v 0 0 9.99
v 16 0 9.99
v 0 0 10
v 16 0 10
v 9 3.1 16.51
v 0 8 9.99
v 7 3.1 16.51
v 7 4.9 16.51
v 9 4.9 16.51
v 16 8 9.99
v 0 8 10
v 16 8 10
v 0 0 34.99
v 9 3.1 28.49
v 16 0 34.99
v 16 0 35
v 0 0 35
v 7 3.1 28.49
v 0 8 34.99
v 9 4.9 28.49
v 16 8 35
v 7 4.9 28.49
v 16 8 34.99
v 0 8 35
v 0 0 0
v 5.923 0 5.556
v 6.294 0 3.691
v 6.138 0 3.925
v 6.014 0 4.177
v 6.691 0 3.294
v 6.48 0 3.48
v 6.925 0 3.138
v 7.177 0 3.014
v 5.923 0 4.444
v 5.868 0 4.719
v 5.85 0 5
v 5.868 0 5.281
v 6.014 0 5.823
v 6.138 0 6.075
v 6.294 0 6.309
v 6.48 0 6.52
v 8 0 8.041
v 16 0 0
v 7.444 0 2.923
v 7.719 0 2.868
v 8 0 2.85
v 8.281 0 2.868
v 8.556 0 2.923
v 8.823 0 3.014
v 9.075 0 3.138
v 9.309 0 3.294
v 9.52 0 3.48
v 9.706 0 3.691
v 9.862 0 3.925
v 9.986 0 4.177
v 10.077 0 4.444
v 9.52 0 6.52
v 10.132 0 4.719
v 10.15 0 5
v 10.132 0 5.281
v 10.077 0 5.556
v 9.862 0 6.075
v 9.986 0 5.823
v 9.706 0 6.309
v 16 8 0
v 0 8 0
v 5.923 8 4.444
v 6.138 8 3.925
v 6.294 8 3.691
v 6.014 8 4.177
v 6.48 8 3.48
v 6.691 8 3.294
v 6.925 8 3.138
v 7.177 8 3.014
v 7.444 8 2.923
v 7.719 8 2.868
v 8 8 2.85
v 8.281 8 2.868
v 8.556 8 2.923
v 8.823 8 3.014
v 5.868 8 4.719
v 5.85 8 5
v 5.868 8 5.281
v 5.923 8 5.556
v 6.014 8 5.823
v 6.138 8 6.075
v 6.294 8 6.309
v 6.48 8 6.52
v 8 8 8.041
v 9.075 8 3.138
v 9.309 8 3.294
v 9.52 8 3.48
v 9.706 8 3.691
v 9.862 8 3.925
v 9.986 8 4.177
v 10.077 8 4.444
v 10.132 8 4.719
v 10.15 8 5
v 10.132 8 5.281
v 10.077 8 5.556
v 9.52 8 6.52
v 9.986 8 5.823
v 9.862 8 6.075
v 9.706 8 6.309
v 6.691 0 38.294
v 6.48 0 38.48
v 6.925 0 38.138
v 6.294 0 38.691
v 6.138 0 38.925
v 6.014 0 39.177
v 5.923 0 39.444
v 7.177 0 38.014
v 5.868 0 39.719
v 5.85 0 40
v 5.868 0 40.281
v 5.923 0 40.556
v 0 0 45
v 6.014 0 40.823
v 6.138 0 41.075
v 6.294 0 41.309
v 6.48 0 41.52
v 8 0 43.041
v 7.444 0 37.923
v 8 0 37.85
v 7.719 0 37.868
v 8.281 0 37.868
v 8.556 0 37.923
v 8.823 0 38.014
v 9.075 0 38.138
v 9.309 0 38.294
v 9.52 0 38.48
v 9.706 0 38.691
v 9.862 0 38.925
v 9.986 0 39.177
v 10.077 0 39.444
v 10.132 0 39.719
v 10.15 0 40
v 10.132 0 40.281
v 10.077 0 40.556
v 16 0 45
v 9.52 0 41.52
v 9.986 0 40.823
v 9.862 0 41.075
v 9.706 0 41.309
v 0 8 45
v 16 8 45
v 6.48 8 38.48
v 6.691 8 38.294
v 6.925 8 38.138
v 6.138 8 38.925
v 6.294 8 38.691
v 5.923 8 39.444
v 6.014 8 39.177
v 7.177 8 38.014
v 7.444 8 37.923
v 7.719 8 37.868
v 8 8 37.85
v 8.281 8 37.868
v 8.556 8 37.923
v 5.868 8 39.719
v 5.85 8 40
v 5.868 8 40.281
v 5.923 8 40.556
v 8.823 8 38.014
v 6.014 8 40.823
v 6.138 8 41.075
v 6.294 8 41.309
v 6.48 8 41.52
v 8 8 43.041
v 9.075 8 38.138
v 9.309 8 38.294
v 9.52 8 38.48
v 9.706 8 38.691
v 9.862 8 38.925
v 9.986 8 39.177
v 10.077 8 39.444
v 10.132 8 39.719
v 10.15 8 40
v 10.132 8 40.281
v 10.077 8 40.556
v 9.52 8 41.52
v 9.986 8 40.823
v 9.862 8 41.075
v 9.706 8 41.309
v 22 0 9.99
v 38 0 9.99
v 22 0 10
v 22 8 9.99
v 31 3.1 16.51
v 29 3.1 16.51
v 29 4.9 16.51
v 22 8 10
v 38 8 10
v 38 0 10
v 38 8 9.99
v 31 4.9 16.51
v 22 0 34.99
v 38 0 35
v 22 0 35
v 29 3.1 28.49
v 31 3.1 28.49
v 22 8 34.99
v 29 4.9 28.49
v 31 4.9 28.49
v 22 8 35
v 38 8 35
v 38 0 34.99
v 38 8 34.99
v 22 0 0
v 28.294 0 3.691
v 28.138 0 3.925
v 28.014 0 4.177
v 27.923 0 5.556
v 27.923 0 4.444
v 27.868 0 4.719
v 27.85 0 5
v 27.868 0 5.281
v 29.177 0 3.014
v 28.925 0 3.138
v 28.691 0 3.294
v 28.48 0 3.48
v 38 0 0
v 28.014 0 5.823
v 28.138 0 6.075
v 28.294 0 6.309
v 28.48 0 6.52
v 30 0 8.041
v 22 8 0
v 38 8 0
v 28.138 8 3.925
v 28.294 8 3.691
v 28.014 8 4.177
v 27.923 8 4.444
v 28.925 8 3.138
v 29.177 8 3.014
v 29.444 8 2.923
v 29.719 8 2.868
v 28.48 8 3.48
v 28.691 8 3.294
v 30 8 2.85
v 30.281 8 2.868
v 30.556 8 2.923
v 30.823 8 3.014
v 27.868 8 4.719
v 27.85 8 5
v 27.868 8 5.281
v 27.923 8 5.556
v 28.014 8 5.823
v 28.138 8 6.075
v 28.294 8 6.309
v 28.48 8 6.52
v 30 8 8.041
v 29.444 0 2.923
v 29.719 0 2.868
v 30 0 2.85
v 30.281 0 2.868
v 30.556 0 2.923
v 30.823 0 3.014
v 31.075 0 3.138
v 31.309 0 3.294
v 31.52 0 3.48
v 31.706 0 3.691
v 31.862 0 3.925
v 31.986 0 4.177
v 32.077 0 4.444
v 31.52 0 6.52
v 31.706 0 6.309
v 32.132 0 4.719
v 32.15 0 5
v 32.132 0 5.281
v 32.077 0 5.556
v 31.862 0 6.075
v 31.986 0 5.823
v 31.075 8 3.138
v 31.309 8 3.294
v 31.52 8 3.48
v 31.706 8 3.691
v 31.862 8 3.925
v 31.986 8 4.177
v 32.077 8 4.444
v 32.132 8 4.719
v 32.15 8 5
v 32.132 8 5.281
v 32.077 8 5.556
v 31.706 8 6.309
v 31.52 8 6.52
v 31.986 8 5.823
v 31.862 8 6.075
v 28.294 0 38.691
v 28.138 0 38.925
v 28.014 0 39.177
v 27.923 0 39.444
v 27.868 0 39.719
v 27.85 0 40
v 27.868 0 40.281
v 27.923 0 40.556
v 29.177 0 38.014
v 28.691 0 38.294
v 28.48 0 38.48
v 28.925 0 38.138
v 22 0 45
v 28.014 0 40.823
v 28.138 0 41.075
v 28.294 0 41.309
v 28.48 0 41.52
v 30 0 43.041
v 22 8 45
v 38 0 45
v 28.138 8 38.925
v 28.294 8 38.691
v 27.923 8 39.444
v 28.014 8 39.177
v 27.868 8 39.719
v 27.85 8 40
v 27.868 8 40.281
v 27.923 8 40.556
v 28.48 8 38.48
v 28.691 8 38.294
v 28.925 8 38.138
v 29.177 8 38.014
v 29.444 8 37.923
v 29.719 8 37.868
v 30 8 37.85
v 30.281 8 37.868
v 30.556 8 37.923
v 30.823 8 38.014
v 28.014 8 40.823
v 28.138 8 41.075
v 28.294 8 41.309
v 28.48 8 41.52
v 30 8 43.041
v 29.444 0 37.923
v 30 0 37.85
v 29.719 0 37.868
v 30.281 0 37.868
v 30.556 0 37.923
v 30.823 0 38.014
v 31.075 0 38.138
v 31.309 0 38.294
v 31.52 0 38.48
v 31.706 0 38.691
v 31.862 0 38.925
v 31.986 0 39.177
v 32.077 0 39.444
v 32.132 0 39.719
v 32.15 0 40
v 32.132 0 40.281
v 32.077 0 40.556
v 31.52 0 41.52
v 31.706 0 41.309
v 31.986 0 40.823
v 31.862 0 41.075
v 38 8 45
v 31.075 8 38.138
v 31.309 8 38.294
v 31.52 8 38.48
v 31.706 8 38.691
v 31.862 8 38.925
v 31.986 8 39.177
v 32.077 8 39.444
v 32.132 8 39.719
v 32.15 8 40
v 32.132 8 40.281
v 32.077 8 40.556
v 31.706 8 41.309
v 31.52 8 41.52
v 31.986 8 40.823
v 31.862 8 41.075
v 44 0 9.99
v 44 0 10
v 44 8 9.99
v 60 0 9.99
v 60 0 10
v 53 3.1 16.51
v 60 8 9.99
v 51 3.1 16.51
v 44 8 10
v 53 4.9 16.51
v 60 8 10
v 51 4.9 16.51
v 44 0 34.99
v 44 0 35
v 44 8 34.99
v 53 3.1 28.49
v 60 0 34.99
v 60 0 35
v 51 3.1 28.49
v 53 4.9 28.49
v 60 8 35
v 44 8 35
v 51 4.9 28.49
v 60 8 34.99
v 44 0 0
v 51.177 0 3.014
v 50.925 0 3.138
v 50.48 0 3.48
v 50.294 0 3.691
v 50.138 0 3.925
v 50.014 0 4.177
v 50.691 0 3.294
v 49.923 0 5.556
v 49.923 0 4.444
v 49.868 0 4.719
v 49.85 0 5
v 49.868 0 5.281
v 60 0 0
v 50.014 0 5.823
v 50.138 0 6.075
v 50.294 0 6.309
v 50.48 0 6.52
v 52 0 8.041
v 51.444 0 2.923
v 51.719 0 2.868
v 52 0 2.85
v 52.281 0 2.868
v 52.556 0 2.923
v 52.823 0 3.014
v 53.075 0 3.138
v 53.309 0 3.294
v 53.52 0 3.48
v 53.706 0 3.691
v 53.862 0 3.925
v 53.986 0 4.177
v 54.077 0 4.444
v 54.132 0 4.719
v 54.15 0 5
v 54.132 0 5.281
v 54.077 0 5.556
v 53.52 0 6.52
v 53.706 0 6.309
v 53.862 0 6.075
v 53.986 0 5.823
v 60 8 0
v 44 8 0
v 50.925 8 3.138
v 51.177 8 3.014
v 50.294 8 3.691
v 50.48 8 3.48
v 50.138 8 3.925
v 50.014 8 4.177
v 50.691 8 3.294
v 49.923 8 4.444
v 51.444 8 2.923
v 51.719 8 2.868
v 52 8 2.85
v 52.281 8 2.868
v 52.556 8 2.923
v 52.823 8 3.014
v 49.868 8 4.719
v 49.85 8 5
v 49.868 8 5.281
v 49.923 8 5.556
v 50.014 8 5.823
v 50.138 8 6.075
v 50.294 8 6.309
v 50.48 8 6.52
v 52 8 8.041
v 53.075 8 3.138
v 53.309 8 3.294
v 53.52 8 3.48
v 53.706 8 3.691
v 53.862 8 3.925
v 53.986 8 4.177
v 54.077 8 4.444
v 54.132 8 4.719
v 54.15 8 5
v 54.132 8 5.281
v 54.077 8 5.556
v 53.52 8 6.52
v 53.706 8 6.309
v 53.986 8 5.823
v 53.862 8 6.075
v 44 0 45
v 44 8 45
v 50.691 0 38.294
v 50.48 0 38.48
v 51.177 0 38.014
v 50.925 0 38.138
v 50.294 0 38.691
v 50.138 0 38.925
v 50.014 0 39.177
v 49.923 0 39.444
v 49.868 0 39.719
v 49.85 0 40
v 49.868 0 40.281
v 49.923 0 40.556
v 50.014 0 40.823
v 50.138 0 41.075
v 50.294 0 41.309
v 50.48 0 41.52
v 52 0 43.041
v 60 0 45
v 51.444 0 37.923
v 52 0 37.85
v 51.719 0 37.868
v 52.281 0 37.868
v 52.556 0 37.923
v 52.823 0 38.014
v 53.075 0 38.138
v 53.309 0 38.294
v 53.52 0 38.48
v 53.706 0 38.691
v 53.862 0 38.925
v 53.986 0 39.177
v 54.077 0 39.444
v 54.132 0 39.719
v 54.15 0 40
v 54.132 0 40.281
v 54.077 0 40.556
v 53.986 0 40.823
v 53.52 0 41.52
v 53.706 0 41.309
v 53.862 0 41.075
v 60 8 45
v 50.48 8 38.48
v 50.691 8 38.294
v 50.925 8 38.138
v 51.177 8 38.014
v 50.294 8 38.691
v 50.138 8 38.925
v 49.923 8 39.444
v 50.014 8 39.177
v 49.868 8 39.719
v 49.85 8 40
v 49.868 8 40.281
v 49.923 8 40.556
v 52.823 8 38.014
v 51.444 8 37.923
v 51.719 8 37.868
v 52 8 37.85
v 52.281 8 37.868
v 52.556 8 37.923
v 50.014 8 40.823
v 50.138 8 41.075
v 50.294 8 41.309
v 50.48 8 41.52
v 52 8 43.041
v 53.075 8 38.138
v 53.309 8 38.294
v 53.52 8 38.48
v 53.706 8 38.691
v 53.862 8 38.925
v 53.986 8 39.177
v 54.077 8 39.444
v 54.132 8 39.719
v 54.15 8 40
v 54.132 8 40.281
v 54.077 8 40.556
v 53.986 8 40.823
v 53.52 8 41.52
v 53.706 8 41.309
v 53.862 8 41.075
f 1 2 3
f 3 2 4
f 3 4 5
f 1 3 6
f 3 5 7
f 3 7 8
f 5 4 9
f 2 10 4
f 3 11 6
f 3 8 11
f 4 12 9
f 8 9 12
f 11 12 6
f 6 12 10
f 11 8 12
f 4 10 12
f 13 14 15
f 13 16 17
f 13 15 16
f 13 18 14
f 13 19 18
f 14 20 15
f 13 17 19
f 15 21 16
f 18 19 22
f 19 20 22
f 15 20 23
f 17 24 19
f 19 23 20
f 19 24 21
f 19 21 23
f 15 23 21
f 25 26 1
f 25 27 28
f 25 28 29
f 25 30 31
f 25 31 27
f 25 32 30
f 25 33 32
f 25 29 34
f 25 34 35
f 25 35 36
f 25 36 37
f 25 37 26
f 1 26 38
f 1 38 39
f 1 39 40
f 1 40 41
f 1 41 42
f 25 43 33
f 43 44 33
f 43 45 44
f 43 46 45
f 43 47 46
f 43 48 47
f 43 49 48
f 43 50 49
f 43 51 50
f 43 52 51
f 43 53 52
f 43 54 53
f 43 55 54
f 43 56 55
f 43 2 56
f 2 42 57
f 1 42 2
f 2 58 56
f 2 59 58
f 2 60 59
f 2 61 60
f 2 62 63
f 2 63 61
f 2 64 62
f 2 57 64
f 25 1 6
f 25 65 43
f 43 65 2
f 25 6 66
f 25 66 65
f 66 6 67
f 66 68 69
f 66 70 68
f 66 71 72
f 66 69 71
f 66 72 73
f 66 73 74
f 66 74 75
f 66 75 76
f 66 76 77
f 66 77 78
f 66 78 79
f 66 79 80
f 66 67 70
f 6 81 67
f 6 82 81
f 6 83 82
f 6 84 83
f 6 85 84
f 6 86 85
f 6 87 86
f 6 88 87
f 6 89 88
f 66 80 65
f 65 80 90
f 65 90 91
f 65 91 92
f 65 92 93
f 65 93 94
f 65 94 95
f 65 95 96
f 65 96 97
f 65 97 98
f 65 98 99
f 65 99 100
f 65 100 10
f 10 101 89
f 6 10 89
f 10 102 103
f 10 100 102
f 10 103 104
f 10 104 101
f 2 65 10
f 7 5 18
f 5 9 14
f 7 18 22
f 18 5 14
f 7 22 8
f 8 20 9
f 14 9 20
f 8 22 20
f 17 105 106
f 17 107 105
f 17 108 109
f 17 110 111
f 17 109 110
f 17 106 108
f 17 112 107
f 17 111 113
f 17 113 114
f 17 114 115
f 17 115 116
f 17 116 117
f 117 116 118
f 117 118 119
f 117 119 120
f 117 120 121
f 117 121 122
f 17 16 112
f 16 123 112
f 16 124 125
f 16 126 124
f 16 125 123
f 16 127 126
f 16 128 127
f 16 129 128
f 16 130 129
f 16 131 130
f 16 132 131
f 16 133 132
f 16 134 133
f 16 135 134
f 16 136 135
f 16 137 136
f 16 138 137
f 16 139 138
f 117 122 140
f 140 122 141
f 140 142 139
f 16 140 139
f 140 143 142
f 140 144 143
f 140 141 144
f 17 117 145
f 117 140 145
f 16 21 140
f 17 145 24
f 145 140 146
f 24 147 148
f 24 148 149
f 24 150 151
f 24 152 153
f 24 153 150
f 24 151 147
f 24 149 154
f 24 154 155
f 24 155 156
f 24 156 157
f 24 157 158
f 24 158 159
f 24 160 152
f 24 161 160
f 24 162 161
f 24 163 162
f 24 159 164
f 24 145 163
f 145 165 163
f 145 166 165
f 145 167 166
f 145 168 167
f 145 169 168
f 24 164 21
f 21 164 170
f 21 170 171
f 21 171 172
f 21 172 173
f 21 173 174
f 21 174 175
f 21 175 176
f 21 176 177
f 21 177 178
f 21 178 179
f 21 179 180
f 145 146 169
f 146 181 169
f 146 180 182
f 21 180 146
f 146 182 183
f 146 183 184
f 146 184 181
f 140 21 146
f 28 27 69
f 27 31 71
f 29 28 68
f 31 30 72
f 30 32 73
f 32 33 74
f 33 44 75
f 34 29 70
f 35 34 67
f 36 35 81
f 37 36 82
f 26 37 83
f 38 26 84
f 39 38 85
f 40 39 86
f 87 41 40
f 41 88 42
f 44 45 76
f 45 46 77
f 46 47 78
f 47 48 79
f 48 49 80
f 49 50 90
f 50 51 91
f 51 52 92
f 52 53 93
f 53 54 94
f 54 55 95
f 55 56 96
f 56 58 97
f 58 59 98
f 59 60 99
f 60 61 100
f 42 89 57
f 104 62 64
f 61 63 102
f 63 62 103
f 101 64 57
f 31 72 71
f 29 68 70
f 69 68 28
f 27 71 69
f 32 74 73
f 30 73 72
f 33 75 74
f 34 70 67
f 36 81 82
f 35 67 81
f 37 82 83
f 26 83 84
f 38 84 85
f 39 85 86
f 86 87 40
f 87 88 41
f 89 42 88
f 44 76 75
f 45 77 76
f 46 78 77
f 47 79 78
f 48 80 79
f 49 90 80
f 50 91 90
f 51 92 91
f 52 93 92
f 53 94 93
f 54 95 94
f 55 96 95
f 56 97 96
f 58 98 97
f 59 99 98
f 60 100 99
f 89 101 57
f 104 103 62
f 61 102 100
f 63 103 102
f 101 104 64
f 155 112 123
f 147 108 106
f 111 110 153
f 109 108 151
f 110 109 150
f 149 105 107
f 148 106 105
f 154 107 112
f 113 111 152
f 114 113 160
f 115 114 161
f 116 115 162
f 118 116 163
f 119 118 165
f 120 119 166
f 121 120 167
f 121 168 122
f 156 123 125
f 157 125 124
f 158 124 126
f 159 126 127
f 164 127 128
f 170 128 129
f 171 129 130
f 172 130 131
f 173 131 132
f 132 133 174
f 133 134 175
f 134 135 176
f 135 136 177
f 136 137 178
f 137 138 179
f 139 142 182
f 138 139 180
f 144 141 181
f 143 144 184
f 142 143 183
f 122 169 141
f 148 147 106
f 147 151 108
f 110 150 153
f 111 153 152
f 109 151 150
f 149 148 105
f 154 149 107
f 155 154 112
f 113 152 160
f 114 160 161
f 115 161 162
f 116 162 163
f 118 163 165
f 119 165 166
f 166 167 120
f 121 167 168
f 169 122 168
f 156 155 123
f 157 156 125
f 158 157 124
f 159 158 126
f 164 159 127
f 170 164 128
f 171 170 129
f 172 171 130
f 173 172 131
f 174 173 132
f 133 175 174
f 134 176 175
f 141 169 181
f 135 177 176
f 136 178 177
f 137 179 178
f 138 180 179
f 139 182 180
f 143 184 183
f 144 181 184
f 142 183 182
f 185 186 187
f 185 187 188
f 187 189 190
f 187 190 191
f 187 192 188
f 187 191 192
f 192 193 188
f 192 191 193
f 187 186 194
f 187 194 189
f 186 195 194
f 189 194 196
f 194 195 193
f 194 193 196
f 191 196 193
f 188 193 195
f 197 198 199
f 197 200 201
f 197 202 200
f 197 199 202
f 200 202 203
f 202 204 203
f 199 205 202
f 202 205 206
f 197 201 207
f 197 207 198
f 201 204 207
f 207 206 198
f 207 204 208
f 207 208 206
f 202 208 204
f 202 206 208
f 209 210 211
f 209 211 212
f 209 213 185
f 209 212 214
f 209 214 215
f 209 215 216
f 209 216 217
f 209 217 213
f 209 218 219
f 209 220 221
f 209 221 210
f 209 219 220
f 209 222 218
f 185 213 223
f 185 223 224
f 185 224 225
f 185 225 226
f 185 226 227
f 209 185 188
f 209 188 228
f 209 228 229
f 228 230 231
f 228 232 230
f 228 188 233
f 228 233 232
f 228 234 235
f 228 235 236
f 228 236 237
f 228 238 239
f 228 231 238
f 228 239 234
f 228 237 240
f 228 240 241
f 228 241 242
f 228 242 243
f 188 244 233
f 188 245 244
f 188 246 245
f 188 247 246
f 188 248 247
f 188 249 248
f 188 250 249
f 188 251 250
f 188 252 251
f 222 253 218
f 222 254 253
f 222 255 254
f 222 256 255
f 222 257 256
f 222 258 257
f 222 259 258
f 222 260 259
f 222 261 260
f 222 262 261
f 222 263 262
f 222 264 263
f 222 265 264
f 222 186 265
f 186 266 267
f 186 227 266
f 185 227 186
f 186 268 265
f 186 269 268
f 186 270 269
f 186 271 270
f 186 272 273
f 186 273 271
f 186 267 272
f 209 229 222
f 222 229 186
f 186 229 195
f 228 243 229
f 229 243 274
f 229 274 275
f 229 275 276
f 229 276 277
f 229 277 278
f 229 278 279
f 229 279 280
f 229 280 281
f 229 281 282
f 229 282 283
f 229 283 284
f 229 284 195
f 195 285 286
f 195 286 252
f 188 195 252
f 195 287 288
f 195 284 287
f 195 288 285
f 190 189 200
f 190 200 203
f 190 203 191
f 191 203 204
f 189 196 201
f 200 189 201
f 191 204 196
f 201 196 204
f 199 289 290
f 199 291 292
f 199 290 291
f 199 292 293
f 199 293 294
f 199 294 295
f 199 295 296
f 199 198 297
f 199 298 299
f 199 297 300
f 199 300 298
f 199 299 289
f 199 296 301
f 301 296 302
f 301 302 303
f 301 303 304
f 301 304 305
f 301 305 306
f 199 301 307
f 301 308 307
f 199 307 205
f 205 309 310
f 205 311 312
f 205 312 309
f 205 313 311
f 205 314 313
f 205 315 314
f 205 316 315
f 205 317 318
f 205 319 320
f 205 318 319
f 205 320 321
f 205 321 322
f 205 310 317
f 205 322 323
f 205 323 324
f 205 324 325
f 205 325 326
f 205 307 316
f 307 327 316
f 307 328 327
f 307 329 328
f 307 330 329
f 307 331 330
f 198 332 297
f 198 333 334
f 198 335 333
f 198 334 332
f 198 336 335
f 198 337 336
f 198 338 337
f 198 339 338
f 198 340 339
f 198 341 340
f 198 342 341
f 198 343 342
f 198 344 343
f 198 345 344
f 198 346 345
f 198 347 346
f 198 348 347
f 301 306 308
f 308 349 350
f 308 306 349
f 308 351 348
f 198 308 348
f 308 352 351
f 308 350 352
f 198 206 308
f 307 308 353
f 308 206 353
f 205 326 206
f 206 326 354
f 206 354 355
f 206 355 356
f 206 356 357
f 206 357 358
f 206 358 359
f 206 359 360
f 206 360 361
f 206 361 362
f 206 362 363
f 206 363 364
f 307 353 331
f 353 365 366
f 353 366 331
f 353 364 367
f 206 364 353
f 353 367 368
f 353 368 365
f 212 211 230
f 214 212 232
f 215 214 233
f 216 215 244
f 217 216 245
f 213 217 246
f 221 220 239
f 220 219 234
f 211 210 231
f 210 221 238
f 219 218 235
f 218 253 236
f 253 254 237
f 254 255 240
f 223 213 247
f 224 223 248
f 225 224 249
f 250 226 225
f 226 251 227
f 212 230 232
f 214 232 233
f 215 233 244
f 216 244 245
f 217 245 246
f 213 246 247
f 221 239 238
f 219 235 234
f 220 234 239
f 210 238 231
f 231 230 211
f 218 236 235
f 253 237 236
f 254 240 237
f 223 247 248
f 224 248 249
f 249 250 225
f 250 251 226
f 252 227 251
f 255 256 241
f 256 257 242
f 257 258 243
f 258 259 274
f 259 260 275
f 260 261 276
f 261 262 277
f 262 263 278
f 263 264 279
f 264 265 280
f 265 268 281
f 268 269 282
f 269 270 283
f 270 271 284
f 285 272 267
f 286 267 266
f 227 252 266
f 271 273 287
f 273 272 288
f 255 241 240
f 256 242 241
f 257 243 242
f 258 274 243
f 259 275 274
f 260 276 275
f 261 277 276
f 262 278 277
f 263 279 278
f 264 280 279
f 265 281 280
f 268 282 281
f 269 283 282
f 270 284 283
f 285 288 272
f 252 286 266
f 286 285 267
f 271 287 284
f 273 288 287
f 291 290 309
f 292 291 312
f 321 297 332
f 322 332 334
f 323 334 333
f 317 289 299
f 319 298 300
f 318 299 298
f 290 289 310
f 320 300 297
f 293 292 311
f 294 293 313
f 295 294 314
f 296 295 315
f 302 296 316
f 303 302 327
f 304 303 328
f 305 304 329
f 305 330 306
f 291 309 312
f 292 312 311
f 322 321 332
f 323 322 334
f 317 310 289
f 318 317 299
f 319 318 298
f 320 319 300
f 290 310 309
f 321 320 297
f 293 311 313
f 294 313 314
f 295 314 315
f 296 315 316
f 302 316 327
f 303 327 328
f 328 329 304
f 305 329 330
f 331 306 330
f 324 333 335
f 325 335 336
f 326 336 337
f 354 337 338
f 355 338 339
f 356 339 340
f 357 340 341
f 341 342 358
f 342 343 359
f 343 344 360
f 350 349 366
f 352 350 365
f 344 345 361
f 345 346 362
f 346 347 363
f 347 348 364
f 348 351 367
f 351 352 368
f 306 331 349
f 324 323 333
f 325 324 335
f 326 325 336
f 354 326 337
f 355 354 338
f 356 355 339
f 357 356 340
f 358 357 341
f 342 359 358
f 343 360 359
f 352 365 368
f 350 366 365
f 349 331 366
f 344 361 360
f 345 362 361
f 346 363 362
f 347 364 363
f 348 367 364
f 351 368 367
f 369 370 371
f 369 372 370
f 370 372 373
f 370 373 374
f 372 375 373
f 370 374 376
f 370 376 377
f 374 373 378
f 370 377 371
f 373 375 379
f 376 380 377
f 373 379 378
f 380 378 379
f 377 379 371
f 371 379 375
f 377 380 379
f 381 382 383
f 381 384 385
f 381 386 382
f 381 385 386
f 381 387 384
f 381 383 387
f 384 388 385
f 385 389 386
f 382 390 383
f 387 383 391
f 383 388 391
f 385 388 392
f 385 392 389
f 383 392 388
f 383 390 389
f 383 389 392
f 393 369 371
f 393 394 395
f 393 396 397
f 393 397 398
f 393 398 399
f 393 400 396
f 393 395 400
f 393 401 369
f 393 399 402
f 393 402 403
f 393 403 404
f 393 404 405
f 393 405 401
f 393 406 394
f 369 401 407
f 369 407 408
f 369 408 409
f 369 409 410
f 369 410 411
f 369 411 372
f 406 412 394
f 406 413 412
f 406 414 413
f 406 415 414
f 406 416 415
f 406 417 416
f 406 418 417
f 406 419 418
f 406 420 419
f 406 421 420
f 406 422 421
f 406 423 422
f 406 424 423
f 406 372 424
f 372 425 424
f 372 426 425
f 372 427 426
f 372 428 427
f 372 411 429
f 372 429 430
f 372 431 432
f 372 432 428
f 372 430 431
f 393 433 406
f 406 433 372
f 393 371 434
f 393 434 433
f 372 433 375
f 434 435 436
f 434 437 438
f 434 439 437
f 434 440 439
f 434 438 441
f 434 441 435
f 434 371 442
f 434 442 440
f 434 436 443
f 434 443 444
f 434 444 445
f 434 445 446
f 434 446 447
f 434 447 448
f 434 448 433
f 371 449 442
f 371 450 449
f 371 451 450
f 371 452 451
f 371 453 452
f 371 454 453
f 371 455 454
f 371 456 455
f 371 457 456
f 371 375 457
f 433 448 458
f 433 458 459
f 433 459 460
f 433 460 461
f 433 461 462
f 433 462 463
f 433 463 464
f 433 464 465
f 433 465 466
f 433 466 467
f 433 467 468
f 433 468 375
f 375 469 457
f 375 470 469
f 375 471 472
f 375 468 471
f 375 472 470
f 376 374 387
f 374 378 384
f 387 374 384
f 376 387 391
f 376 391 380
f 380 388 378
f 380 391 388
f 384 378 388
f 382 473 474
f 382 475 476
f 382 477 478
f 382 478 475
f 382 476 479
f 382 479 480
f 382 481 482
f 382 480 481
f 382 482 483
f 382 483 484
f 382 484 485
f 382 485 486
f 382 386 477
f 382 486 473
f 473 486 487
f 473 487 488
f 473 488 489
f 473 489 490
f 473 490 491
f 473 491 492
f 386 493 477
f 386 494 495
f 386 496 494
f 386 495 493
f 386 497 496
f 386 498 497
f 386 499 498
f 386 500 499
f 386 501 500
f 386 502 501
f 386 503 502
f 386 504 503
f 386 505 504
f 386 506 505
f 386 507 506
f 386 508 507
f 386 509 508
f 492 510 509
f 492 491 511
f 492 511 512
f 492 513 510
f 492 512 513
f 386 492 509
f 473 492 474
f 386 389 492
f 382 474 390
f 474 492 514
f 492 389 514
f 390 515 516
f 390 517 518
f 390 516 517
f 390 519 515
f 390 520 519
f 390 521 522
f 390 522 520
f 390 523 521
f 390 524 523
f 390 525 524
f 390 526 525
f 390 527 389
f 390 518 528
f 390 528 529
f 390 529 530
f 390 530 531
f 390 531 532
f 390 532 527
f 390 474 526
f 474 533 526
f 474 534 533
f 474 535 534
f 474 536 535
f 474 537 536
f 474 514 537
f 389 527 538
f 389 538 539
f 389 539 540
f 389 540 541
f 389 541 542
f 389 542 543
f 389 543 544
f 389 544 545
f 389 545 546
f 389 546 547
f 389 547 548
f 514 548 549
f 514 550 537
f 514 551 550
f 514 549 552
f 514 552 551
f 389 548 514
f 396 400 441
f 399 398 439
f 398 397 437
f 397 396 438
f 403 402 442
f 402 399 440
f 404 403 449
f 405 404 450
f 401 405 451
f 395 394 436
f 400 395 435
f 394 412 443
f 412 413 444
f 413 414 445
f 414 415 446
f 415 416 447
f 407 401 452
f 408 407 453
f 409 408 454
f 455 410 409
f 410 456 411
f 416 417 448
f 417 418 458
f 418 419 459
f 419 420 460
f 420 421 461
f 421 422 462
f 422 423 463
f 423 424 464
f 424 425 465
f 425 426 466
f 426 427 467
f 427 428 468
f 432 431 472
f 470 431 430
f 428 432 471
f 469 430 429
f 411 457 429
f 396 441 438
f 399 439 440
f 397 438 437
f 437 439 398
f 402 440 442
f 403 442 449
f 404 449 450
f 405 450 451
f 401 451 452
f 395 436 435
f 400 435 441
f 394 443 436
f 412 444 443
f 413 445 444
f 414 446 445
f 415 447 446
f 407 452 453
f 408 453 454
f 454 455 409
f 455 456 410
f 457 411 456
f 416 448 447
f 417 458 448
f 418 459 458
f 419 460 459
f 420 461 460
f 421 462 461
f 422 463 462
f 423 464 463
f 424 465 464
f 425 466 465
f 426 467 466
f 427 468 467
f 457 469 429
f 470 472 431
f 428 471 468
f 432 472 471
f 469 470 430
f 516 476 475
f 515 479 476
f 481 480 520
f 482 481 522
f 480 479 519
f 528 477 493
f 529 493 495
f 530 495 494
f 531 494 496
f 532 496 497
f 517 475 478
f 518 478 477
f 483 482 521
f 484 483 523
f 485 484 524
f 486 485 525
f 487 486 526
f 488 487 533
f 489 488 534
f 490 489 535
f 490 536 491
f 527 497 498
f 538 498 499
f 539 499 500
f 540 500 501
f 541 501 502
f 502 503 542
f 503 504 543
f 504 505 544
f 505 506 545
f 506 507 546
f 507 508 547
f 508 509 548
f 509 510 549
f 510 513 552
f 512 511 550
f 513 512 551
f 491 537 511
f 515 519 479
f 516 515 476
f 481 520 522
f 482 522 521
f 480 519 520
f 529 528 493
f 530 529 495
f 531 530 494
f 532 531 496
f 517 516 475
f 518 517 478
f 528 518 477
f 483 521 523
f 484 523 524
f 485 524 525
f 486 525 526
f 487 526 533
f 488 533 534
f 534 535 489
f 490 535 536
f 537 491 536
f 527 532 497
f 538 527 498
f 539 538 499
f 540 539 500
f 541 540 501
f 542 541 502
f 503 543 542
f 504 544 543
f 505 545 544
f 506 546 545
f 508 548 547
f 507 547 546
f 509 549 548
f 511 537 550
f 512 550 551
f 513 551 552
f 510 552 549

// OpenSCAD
// Toccata stage-0 C12a - 층간 인장 쿠폰 (핀 두께 1.8 × 폭 2.0, 3개) (generated by make_stage0.py; print orientation, z = build direction)
$fn = 64;
difference(){
union(){
translate([0.0000,0.0000,0.0000]) cube([16.0000,8.0000,10.0000]);
hull(){translate([0.0000,0.0000,9.9900]) cube([16.0000,8.0000,0.0100]);translate([7.0000,3.1000,16.5000]) cube([2.0000,1.8000,0.0100]);}
translate([7.0000,3.1000,16.5000]) cube([2.0000,1.8000,12.0000]);
hull(){translate([7.0000,3.1000,28.4900]) cube([2.0000,1.8000,0.0100]);translate([0.0000,0.0000,34.9900]) cube([16.0000,8.0000,0.0100]);}
translate([0.0000,0.0000,35.0000]) cube([16.0000,8.0000,10.0000]);
}
translate([8.000,-1,5.000]) rotate([-90,0,0]) linear_extrude(height=10) union(){circle(d=4.3000, $fn=48); rotate(225.000) square([2.1500,2.1500]);}
translate([8.000,-1,40.000]) rotate([-90,0,0]) linear_extrude(height=10) union(){circle(d=4.3000, $fn=48); rotate(225.000) square([2.1500,2.1500]);}
}
difference(){
union(){
translate([22.0000,0.0000,0.0000]) cube([16.0000,8.0000,10.0000]);
hull(){translate([22.0000,0.0000,9.9900]) cube([16.0000,8.0000,0.0100]);translate([29.0000,3.1000,16.5000]) cube([2.0000,1.8000,0.0100]);}
translate([29.0000,3.1000,16.5000]) cube([2.0000,1.8000,12.0000]);
hull(){translate([29.0000,3.1000,28.4900]) cube([2.0000,1.8000,0.0100]);translate([22.0000,0.0000,34.9900]) cube([16.0000,8.0000,0.0100]);}
translate([22.0000,0.0000,35.0000]) cube([16.0000,8.0000,10.0000]);
}
translate([30.000,-1,5.000]) rotate([-90,0,0]) linear_extrude(height=10) union(){circle(d=4.3000, $fn=48); rotate(225.000) square([2.1500,2.1500]);}
translate([30.000,-1,40.000]) rotate([-90,0,0]) linear_extrude(height=10) union(){circle(d=4.3000, $fn=48); rotate(225.000) square([2.1500,2.1500]);}
}
difference(){
union(){
translate([44.0000,0.0000,0.0000]) cube([16.0000,8.0000,10.0000]);
hull(){translate([44.0000,0.0000,9.9900]) cube([16.0000,8.0000,0.0100]);translate([51.0000,3.1000,16.5000]) cube([2.0000,1.8000,0.0100]);}
translate([51.0000,3.1000,16.5000]) cube([2.0000,1.8000,12.0000]);
hull(){translate([51.0000,3.1000,28.4900]) cube([2.0000,1.8000,0.0100]);translate([44.0000,0.0000,34.9900]) cube([16.0000,8.0000,0.0100]);}
translate([44.0000,0.0000,35.0000]) cube([16.0000,8.0000,10.0000]);
}
translate([52.000,-1,5.000]) rotate([-90,0,0]) linear_extrude(height=10) union(){circle(d=4.3000, $fn=48); rotate(225.000) square([2.1500,2.1500]);}
translate([52.000,-1,40.000]) rotate([-90,0,0]) linear_extrude(height=10) union(){circle(d=4.3000, $fn=48); rotate(225.000) square([2.1500,2.1500]);}
}
